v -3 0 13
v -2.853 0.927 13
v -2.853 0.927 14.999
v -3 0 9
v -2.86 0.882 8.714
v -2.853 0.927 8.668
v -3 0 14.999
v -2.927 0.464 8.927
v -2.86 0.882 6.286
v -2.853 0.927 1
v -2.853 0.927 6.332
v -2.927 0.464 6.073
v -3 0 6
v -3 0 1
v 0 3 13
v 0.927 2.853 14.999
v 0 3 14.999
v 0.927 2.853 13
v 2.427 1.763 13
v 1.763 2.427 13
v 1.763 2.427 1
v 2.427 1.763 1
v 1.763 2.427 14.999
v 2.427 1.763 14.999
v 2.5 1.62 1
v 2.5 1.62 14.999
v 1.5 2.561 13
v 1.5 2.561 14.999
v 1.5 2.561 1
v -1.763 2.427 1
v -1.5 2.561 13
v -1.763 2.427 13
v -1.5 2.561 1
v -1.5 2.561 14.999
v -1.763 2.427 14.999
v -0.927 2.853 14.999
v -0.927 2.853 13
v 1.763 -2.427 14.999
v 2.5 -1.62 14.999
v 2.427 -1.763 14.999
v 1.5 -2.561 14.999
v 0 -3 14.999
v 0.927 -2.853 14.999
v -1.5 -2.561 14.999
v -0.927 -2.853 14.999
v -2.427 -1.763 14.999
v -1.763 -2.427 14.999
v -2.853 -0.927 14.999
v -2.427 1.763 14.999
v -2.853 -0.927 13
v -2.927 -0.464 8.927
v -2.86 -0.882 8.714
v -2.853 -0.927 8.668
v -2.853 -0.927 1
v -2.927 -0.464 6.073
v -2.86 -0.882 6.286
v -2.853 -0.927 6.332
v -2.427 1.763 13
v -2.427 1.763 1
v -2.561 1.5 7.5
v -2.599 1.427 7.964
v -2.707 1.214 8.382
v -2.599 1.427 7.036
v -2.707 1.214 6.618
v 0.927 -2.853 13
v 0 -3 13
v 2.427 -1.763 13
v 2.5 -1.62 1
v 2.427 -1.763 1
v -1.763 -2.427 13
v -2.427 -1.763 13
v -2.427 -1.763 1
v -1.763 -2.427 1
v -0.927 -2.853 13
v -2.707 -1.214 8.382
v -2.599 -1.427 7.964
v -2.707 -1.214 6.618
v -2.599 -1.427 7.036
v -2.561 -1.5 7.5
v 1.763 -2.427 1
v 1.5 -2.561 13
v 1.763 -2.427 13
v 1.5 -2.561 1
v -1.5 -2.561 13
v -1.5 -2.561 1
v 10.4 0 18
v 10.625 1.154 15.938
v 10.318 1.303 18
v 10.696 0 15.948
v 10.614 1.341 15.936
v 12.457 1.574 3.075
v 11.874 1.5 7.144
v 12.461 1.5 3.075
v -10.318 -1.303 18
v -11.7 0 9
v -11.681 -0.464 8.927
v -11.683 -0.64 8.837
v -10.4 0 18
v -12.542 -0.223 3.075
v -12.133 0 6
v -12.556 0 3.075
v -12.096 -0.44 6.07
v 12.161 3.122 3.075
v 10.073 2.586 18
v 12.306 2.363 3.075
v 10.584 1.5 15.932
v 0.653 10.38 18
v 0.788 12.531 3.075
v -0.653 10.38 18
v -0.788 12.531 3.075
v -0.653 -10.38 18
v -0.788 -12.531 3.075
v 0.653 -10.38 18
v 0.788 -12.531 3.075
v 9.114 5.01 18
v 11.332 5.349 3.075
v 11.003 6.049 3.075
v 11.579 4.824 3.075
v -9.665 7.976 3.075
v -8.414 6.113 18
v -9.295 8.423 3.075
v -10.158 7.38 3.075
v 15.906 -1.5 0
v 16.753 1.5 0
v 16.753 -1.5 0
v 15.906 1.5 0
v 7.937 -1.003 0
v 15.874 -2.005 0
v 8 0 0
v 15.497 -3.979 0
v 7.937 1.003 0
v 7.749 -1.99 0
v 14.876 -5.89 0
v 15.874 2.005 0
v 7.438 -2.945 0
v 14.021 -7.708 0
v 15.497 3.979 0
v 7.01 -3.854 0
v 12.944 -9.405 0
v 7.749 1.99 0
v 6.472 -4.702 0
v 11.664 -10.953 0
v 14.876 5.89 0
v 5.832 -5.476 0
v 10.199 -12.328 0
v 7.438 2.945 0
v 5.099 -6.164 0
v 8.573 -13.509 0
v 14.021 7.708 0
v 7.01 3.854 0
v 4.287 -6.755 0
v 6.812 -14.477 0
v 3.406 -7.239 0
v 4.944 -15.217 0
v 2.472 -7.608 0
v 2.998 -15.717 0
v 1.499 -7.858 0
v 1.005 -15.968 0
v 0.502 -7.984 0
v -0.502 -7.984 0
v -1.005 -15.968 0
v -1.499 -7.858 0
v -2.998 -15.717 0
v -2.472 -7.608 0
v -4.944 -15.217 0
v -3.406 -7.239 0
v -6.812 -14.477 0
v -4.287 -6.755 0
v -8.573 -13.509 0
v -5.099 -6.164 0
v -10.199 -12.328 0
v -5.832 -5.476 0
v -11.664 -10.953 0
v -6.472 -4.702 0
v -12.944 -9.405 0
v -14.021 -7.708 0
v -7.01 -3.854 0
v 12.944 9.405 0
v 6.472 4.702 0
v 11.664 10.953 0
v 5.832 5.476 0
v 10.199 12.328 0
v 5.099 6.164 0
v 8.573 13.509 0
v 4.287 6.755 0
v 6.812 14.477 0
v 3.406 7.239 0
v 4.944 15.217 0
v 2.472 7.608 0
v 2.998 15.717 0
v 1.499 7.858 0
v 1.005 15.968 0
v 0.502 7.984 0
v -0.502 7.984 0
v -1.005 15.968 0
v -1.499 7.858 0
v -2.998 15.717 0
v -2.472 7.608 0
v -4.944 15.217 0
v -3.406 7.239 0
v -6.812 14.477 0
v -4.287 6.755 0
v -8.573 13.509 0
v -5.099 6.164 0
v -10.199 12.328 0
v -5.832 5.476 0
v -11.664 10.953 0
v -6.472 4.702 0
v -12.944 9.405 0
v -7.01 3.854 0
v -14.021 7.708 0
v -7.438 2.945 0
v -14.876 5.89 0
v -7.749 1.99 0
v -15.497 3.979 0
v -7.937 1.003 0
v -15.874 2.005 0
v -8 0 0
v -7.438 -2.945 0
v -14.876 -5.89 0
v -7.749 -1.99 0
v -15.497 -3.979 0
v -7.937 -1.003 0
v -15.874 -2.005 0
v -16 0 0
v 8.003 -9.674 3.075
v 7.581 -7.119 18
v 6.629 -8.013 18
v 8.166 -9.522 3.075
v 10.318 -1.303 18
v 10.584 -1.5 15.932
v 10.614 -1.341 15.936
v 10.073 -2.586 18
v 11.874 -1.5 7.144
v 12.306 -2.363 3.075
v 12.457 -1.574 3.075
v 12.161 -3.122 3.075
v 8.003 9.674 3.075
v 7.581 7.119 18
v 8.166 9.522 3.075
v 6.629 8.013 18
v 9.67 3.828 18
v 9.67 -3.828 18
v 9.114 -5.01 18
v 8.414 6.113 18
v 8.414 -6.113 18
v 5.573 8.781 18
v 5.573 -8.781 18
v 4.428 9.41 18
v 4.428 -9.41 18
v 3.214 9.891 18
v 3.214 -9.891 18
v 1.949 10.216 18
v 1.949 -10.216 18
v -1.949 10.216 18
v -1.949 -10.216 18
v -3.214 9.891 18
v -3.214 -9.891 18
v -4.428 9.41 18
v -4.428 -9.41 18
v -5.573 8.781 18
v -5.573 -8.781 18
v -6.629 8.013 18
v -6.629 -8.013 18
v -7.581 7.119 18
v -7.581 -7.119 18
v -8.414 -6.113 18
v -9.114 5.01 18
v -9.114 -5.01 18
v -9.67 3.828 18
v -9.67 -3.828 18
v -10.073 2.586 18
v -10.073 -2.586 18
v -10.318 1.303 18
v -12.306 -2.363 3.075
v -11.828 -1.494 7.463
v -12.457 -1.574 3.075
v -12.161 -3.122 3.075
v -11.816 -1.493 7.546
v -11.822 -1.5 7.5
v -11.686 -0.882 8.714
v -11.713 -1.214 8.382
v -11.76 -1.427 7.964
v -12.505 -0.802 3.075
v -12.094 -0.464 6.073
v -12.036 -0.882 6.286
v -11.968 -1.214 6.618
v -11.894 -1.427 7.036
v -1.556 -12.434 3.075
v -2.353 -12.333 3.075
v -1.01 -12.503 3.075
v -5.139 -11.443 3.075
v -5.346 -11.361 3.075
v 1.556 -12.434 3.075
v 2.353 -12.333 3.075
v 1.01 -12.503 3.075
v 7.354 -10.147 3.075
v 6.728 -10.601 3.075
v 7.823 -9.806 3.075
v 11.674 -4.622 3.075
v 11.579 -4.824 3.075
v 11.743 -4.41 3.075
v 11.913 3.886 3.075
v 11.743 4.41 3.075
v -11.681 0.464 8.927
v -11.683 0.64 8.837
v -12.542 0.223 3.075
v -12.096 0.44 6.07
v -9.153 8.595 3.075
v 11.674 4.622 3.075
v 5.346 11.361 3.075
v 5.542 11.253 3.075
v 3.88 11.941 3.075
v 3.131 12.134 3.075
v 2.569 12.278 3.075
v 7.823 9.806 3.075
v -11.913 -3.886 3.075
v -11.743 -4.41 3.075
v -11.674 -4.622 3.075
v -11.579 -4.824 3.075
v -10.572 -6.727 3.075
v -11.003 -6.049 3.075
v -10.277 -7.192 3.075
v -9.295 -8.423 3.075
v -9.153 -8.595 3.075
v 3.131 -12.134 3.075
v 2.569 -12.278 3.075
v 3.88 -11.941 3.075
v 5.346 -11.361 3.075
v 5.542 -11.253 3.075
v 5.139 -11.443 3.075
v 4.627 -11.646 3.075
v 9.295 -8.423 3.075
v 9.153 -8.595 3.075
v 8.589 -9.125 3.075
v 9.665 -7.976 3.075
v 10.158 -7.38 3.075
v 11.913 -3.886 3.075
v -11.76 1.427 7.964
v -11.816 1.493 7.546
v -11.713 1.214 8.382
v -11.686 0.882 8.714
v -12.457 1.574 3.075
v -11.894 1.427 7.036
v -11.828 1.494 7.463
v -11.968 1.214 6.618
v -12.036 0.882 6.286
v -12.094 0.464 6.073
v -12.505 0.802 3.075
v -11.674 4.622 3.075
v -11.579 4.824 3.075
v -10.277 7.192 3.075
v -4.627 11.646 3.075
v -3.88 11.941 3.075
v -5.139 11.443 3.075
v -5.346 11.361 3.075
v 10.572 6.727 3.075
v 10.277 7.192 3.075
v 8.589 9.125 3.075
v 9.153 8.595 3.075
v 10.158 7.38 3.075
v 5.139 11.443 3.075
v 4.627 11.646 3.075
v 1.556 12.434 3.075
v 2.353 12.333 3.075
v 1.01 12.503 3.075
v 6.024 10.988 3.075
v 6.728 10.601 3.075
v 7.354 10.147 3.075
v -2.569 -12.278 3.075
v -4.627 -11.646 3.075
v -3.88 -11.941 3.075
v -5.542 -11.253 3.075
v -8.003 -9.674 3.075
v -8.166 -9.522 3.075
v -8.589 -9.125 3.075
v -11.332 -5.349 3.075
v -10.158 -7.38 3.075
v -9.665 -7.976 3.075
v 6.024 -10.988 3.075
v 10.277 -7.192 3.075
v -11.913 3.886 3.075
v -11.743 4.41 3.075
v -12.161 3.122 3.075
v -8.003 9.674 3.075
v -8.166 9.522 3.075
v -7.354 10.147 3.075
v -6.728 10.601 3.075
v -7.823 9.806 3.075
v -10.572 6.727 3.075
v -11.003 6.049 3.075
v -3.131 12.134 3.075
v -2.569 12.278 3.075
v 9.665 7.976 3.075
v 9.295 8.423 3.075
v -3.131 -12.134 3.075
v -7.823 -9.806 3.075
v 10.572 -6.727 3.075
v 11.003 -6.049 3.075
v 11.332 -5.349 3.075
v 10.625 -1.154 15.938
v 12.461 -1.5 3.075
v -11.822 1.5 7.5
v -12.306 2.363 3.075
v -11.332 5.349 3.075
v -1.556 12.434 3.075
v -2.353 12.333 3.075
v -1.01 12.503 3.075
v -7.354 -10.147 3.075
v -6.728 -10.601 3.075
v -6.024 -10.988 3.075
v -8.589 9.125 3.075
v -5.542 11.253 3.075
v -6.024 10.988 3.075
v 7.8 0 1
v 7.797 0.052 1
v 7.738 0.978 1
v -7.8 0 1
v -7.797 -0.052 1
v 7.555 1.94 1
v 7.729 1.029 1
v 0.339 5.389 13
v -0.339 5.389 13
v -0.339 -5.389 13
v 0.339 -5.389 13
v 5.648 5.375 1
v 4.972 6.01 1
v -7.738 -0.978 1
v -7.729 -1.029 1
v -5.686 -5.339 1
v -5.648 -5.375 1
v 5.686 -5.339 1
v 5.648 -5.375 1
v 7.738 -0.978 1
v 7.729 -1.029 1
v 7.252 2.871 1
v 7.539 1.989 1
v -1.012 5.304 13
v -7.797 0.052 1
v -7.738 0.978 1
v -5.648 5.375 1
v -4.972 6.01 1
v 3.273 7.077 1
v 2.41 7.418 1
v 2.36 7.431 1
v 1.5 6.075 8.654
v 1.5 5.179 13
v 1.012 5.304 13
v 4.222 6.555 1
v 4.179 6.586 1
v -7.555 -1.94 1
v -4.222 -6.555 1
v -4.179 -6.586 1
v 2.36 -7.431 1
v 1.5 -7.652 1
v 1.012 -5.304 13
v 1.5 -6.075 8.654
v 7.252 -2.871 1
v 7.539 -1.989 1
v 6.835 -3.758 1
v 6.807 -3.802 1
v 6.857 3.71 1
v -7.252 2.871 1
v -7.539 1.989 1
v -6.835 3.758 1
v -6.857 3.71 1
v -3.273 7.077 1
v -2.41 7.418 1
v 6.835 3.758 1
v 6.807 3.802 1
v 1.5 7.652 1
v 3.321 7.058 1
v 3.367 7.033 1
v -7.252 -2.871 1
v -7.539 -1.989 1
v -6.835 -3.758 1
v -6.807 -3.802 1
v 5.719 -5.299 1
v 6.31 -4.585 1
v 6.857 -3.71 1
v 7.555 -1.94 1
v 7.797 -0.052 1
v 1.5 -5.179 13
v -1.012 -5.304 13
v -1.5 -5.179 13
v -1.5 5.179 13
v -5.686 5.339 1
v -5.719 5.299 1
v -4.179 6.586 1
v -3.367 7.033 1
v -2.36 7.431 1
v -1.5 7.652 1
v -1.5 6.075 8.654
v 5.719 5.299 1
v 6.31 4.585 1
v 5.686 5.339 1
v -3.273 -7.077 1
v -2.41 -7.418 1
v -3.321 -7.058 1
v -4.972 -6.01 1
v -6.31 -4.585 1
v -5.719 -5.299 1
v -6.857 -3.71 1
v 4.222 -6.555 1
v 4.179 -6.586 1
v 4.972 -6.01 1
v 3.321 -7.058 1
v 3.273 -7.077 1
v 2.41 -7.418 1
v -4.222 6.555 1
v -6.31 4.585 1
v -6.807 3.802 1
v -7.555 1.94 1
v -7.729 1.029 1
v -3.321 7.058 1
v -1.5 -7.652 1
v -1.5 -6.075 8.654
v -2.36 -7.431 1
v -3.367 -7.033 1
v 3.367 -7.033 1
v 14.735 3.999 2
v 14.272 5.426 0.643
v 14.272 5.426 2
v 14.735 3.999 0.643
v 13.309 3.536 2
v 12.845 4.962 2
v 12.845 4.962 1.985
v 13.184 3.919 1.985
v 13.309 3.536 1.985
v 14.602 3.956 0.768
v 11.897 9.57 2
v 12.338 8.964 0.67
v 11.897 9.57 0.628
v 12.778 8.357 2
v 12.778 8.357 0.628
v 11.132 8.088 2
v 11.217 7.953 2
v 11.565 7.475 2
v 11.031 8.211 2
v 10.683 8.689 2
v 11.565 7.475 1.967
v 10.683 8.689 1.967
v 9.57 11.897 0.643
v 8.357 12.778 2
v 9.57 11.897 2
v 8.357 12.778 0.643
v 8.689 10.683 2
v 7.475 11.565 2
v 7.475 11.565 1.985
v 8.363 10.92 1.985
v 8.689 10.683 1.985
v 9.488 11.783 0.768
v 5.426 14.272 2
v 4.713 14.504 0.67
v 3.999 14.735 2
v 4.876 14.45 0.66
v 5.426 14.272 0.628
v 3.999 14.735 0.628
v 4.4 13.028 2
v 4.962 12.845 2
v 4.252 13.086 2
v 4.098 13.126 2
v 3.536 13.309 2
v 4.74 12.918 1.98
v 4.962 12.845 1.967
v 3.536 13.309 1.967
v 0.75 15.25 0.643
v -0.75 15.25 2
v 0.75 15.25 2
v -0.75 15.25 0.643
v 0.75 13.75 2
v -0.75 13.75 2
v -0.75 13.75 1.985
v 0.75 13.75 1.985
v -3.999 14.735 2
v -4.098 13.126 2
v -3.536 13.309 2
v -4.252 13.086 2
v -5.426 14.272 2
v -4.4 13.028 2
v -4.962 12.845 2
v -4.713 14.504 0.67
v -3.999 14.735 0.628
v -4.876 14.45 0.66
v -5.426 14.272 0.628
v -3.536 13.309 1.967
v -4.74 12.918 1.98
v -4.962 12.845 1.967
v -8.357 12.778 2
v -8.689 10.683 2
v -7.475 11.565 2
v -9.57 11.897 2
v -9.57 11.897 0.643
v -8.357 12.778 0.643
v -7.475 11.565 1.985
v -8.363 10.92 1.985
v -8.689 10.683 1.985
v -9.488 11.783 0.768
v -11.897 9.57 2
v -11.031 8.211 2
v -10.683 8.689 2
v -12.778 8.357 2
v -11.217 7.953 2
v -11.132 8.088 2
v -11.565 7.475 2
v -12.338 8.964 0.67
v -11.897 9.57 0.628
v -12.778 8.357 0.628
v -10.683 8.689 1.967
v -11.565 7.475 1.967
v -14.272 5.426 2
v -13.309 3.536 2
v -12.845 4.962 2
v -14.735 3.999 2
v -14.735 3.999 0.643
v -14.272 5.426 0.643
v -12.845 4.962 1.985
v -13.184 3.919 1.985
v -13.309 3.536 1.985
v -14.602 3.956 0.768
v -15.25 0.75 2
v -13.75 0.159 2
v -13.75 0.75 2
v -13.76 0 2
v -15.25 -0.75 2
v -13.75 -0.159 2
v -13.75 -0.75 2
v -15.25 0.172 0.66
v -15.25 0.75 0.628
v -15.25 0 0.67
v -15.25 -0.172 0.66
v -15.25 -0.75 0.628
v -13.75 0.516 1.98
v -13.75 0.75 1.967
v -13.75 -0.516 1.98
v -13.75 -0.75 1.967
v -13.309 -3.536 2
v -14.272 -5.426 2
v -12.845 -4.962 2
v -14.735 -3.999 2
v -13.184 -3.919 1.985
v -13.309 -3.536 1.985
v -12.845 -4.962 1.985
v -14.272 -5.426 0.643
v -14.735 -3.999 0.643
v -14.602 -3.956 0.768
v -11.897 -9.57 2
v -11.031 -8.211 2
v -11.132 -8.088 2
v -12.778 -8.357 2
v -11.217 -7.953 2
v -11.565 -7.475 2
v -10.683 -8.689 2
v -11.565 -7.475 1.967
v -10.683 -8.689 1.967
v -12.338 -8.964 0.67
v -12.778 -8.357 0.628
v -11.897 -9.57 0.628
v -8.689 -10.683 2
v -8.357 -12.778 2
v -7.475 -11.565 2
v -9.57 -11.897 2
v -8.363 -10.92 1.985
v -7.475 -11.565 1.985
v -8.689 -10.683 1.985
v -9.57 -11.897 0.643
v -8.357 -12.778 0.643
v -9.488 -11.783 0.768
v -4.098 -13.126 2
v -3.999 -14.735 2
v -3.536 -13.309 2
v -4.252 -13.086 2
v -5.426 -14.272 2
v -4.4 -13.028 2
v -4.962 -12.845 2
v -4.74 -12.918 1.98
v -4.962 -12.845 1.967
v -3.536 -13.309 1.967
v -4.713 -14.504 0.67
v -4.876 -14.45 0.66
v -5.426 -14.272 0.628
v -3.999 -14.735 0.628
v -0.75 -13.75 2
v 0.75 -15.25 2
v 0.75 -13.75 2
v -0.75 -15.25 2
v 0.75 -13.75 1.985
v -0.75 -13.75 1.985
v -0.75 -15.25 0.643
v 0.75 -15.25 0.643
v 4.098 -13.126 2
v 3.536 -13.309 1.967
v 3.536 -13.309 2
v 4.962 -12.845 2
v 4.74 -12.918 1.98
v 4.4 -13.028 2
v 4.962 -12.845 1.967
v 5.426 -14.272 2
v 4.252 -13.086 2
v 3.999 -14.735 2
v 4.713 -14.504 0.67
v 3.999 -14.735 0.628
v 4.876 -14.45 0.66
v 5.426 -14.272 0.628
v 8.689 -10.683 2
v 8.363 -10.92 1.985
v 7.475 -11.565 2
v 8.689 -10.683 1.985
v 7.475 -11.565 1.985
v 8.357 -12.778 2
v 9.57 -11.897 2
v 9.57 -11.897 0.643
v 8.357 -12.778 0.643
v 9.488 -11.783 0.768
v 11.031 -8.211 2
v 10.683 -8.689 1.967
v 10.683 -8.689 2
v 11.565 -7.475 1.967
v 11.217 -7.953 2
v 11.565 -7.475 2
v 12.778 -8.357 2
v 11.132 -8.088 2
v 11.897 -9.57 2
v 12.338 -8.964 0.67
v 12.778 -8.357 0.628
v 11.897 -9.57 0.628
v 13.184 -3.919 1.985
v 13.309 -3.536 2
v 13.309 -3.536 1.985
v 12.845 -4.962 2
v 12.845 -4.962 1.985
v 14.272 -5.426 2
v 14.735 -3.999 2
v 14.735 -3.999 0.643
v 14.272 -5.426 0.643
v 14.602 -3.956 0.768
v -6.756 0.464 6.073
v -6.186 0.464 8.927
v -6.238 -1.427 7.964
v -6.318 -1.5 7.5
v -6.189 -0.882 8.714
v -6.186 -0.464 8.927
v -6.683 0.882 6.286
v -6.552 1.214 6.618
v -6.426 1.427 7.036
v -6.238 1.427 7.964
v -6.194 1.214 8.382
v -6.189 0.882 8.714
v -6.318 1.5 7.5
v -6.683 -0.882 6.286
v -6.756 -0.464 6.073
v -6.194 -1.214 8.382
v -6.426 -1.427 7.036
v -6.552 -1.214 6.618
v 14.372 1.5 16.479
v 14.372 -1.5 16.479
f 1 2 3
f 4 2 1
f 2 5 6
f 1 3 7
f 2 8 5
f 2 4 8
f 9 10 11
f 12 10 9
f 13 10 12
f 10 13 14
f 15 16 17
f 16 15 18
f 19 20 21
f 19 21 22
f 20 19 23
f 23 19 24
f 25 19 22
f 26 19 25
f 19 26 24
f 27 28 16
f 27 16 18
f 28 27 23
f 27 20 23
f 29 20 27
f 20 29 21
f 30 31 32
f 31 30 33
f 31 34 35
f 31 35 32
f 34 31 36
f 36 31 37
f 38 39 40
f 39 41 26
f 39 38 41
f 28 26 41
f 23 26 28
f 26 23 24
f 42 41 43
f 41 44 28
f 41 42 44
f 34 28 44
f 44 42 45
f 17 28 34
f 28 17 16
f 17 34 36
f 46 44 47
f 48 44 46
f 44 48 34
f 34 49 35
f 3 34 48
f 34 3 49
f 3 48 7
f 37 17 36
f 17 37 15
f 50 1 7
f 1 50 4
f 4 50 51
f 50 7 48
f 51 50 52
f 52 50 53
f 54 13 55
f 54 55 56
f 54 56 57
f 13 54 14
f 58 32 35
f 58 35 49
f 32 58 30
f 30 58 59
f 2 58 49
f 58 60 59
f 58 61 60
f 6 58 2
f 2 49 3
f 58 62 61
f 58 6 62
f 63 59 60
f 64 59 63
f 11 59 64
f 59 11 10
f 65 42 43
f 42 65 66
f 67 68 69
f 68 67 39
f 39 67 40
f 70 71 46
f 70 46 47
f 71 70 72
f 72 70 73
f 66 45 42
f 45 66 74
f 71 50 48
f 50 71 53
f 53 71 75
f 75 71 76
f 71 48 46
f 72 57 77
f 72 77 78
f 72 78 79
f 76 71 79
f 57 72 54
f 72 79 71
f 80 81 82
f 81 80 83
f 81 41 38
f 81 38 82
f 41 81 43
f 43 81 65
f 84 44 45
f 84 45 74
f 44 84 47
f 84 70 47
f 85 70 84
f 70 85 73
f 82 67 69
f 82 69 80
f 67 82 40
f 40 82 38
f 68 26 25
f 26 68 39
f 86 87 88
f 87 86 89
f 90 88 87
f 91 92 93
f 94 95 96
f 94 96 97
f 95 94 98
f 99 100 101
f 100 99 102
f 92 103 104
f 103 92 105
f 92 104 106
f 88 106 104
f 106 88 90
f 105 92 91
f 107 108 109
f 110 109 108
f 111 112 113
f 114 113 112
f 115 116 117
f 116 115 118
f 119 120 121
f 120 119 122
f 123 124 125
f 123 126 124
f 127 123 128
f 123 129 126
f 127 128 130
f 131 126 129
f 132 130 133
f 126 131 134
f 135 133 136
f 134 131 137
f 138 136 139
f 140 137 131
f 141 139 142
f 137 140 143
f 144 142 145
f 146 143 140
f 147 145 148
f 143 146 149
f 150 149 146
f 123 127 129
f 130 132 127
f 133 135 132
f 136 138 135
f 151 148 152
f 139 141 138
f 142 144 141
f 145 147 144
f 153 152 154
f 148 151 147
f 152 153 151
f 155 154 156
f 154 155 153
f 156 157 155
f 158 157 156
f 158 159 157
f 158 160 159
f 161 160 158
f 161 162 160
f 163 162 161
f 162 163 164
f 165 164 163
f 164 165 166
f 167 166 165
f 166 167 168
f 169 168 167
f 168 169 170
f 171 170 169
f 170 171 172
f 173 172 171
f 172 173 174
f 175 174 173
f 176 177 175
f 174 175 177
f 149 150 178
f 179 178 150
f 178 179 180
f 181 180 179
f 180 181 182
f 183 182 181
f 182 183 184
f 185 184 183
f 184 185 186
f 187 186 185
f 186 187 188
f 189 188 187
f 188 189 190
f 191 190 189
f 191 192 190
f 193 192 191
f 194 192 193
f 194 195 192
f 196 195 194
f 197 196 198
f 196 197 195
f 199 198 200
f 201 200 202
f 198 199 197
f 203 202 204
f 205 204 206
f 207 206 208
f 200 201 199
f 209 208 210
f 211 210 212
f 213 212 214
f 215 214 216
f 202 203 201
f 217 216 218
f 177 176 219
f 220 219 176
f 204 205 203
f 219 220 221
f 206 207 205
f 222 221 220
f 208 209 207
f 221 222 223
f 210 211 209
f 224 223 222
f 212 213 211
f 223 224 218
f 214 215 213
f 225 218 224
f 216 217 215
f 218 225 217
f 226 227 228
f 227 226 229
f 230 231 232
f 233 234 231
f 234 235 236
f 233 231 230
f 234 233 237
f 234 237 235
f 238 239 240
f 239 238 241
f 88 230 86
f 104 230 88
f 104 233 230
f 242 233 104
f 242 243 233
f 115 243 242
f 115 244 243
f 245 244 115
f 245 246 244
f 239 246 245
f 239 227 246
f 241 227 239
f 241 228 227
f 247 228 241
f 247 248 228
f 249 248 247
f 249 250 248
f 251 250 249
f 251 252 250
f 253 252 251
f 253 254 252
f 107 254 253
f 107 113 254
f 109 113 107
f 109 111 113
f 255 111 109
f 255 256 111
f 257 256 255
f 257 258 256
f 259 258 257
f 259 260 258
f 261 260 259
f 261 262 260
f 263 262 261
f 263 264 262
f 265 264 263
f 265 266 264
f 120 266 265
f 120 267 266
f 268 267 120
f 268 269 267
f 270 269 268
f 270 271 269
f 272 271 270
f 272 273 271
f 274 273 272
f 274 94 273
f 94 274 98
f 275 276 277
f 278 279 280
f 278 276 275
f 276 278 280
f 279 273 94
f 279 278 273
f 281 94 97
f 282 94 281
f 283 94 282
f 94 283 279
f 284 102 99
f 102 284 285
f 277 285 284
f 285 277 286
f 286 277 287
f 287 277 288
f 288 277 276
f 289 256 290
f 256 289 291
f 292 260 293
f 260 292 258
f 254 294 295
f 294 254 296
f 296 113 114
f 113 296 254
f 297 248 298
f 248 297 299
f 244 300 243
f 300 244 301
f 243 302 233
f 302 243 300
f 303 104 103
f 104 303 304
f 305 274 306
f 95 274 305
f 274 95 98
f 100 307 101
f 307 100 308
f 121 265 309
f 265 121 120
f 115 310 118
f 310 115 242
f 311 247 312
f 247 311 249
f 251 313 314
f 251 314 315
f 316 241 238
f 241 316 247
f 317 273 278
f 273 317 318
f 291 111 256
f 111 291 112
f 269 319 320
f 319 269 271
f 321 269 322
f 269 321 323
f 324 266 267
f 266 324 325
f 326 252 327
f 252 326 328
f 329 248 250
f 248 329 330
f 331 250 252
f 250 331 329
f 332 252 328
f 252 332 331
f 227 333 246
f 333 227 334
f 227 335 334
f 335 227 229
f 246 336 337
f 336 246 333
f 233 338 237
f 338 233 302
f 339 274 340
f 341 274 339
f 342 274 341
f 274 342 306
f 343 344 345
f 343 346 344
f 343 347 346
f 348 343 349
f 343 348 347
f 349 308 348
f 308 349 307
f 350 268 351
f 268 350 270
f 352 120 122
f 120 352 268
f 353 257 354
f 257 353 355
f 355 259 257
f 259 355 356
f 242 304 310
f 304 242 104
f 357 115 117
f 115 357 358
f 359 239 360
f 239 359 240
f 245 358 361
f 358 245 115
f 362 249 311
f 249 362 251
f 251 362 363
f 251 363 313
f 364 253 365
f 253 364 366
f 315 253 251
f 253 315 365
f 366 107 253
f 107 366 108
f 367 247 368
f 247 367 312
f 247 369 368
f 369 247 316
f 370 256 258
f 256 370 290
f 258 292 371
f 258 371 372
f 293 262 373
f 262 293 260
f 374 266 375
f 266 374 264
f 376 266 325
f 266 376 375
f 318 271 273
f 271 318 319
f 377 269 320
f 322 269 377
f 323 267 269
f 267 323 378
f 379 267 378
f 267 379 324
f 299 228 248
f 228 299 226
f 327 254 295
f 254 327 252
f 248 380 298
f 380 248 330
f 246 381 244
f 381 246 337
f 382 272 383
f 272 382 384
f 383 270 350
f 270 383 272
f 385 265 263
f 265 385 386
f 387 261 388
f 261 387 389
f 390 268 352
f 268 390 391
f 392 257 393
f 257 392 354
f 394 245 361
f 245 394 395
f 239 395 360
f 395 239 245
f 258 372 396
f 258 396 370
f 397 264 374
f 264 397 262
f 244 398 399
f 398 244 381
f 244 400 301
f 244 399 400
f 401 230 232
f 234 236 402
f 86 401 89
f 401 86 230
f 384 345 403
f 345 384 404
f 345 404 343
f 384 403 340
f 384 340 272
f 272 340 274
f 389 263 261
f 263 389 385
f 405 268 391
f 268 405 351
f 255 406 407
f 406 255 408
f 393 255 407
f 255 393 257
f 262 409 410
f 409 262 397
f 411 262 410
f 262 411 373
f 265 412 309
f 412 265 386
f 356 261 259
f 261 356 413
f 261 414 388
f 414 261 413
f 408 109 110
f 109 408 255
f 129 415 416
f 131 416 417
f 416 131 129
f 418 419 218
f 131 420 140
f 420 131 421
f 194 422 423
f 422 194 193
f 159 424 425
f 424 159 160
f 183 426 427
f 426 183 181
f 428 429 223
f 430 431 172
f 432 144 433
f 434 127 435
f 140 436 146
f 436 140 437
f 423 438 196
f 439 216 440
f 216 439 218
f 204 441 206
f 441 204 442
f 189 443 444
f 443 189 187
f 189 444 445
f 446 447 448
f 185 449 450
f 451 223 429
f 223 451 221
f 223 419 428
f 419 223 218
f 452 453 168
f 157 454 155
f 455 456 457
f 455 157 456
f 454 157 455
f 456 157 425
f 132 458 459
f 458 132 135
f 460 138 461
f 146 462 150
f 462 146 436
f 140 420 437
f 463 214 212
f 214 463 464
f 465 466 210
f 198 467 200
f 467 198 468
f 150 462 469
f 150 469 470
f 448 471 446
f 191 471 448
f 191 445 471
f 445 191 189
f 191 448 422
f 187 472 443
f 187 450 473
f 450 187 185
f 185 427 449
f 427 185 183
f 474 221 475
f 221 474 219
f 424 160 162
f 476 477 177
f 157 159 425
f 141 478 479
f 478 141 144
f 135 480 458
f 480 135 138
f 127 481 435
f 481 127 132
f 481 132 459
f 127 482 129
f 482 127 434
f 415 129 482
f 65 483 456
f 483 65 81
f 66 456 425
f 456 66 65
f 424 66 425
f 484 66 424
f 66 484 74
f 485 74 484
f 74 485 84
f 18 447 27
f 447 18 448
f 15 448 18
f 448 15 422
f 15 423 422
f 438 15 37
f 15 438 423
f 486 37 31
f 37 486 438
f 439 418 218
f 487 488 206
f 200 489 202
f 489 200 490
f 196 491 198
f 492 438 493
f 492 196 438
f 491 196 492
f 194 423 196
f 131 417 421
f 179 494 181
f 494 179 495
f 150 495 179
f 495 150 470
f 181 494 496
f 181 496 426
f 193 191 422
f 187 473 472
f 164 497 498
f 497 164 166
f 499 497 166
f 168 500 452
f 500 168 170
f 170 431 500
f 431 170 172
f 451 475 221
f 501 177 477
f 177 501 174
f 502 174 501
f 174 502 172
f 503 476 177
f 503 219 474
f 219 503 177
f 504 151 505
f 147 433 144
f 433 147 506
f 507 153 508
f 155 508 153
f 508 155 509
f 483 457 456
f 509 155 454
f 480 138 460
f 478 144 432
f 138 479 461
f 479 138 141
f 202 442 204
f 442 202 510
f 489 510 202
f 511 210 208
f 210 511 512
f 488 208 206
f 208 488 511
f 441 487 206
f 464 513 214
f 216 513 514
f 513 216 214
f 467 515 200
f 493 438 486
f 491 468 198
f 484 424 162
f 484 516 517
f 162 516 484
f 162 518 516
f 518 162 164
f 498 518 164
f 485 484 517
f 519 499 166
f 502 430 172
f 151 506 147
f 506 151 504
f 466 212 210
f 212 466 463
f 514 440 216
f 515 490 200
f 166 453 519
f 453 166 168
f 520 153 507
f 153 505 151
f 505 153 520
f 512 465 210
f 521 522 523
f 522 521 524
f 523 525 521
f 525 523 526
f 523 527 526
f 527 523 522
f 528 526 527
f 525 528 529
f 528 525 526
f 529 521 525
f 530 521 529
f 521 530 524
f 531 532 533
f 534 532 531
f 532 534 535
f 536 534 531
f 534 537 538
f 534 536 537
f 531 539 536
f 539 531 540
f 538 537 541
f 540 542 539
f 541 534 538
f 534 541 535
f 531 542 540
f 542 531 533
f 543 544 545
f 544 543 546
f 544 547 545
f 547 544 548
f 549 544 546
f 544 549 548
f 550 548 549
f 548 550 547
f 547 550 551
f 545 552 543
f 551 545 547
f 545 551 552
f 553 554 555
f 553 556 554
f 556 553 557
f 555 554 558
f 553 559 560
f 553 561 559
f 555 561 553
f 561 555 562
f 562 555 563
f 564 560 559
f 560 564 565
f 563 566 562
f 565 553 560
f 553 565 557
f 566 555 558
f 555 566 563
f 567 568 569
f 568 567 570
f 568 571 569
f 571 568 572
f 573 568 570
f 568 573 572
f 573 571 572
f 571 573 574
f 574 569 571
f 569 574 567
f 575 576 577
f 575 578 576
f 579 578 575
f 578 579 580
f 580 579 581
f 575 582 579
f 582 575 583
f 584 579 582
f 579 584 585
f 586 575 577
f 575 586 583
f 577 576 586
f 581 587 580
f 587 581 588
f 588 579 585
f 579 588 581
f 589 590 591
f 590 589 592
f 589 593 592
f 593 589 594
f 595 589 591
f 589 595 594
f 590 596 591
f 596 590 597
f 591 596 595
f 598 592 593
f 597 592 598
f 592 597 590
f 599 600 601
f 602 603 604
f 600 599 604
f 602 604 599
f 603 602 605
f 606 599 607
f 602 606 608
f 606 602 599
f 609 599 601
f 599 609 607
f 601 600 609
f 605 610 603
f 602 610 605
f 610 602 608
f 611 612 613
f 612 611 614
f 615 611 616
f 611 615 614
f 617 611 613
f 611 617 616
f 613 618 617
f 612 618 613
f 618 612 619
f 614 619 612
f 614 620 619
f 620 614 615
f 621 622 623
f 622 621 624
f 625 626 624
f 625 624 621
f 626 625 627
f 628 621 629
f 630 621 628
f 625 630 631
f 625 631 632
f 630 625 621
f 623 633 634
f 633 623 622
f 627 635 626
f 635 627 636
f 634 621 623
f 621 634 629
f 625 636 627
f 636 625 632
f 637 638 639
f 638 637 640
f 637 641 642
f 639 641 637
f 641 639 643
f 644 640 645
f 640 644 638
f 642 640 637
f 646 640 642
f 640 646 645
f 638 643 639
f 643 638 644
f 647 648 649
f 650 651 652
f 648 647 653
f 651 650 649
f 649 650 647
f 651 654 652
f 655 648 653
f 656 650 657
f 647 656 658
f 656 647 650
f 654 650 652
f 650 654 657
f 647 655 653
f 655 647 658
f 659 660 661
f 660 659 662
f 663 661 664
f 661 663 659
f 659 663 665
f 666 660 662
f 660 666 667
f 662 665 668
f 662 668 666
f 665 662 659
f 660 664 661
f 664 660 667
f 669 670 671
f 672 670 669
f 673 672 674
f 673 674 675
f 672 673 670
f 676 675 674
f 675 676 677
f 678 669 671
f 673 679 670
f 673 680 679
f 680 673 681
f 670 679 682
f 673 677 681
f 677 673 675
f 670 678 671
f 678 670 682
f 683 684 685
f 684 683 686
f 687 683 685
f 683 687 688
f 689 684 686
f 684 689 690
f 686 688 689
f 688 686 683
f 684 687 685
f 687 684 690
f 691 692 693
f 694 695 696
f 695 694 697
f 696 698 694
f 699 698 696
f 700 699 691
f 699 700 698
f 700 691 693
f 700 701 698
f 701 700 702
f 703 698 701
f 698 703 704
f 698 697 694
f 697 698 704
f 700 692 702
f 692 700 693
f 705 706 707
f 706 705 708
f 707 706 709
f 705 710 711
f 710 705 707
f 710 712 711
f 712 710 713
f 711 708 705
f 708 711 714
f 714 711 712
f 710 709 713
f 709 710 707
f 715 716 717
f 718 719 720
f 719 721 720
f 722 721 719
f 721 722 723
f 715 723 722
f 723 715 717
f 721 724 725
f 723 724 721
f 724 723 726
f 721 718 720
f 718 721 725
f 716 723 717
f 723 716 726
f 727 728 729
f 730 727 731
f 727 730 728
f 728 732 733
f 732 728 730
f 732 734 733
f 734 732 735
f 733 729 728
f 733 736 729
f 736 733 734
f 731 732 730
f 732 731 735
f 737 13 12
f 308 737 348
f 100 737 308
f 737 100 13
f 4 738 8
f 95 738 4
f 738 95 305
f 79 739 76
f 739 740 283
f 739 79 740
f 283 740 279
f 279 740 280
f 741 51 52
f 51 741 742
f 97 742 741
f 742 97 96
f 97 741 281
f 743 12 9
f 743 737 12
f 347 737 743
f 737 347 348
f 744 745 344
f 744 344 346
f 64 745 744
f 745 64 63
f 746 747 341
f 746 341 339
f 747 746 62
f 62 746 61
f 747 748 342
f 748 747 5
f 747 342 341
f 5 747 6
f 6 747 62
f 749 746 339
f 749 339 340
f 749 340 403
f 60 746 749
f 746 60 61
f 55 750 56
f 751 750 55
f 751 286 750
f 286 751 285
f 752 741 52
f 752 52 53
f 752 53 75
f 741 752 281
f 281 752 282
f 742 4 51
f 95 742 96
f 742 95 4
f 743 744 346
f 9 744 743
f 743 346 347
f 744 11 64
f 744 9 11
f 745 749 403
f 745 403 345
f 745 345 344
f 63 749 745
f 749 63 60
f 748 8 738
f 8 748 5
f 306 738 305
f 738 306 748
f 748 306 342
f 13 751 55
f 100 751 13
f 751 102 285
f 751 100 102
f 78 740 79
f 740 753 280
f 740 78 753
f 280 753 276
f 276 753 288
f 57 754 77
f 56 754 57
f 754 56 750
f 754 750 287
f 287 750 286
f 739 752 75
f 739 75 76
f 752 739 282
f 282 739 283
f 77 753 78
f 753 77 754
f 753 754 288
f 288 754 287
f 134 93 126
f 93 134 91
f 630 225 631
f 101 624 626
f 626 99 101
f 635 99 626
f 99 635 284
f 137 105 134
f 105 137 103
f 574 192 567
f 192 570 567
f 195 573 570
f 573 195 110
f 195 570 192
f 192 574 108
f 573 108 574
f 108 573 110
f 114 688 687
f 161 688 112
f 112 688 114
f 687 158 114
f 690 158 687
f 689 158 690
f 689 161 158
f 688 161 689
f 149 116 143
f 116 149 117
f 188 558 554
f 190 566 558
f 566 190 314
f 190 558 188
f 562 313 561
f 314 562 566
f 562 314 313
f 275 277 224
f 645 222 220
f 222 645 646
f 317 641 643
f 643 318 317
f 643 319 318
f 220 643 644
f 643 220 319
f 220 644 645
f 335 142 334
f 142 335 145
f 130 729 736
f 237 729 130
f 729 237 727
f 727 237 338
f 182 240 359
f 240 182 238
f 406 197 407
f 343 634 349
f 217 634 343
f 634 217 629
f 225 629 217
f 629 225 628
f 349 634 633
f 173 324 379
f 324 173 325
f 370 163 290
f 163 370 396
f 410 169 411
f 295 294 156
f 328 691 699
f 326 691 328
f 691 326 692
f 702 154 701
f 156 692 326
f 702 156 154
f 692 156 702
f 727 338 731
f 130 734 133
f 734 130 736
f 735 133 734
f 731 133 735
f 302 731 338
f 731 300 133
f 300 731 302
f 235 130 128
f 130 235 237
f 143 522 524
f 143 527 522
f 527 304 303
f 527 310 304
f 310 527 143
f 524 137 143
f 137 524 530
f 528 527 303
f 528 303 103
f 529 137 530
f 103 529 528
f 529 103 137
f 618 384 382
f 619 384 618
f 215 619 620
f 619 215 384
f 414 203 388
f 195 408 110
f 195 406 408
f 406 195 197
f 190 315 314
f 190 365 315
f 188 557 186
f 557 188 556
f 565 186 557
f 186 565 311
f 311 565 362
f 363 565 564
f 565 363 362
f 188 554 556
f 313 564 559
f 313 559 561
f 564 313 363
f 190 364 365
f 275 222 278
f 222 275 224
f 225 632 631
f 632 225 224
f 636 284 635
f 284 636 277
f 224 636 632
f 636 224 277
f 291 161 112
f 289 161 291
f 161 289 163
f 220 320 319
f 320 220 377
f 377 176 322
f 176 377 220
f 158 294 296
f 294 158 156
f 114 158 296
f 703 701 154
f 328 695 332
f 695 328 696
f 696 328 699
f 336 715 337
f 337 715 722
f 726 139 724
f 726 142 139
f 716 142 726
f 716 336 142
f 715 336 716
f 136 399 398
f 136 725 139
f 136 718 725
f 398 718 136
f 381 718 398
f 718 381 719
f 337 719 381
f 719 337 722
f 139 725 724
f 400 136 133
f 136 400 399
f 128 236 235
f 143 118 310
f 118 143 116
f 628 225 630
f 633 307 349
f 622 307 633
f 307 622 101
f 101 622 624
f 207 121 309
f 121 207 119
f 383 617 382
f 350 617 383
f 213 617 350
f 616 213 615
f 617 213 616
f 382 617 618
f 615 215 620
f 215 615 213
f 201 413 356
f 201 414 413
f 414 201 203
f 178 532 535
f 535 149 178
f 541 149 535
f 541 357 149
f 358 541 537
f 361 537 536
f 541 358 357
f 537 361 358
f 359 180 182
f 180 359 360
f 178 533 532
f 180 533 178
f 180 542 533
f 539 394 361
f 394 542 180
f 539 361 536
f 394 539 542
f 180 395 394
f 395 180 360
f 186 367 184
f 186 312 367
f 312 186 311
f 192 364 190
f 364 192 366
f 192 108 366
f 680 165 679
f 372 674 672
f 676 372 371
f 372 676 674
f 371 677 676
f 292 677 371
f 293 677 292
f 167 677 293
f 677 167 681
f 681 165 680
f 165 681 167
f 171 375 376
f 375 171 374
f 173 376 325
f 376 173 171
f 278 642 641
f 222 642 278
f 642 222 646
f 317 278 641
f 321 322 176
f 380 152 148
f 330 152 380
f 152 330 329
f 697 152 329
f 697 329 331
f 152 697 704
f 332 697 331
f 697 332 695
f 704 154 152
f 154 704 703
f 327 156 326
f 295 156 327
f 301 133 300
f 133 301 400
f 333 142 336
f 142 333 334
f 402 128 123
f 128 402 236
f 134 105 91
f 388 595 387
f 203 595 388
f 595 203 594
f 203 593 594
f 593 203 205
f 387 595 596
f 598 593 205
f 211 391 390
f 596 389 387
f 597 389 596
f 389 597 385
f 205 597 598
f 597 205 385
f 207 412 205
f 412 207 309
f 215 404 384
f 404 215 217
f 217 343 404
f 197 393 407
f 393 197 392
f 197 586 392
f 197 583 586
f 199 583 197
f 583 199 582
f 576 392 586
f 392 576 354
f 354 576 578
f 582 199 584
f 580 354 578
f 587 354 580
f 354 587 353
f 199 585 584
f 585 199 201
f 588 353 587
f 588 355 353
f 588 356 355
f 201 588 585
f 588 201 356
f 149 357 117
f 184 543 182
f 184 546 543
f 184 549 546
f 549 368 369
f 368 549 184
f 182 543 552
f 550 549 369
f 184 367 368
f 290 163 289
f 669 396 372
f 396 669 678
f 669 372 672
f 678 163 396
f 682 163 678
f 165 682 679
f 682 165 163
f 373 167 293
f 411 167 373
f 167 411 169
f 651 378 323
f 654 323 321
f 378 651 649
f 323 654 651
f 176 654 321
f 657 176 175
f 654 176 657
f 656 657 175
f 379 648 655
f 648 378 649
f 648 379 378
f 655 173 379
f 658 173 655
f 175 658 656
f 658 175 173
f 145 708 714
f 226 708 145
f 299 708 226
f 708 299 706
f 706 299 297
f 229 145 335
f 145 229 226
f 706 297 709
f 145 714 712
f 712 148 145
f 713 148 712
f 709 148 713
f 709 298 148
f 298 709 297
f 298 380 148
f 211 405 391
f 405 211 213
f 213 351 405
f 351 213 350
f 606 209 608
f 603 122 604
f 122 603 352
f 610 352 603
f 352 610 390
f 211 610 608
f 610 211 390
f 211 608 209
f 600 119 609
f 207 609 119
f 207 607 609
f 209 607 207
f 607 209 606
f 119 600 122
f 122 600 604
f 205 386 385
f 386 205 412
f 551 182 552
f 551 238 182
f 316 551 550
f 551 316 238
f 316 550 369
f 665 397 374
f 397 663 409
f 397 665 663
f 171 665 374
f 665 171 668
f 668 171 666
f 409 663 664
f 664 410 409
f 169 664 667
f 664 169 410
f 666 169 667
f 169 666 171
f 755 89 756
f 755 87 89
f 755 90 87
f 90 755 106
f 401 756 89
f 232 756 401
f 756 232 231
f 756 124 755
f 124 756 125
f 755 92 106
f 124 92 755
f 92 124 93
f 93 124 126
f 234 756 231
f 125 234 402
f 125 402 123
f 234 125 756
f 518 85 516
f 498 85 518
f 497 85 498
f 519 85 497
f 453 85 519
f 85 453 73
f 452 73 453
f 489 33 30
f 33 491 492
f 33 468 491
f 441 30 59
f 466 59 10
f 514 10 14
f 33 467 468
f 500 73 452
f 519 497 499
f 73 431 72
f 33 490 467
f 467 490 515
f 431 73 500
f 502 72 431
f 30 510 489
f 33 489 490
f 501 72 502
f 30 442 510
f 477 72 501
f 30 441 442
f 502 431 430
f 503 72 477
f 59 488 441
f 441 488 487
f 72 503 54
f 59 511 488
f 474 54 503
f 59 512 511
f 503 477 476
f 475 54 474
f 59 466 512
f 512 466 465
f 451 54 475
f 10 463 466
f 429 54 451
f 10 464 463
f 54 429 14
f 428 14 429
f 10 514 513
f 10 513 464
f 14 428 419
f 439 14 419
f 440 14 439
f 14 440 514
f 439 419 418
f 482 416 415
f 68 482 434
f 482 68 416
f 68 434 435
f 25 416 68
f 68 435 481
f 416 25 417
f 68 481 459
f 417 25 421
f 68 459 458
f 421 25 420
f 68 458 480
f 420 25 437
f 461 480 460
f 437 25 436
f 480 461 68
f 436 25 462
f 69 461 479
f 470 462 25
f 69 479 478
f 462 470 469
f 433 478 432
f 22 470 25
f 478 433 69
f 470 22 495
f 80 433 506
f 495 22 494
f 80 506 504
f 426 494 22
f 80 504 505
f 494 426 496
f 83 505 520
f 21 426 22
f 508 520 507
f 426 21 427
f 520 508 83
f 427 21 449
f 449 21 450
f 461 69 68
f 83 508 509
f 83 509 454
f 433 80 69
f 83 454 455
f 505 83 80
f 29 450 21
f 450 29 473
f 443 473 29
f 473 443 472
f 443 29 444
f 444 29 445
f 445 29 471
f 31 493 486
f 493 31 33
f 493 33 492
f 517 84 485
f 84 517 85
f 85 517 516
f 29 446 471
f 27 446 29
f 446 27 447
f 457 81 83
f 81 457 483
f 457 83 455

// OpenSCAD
//////////////////////////
// Customizable settings
//////////////////////////


// Diameter of the hole on the bottom (in mm).
HoleDiameter = 6;

// Depth of the hole in the bottom (in mm).  If you want the hole to go all the way through then set this to a number larger than the total height of the object.
HoleDepth = 15;

// If you want a D-shaped hole, set this to the thickness of the flat side (in mm).  Larger values for the flat make the hole smaller.
HoleFlatThickness = 11.5;

// Height (in mm).  If dome cap is selected, it is not included in height.  The shaft length is also not counted.
KnobHeight = 18;

// Diameter of base of round part of knob (in mm).  (Knurled ridges are not included in this measurement.)
KnobDiameter = 26;

// Shape of top of knob.  "Recessed" type can be painted.
CapType = 0;	// [0:Flat, 1:Recessed, 2:Dome]

// Do you want a large timer-knob style pointer?
TimerKnob=0;	// [0:No, 1:Yes]

// Would you like a divot on the top to indicate direction?
Pointer1 = 0;	// [0:No, 1:Yes]

// Would you like a line (pointer) on the front to indicate direction?
Pointer2 = 1;	// [0:No, 1:Yes]

// Do you want finger ridges around the knob?
Knurled = 0;	// [0:No, 1:Yes]

// 0 = A cylindrical knob, any other value will taper the knob.
TaperPercentage = 20;		// [0:0%, 10:10%, 20:20%, 30:30%, 40:40%, 50:50%]

// Width of "dial" ring (in mm).  Set to zero if you don't want the ring.
RingWidth = 3;

// The number of markings on the dial.  Set to zero if you don't want markings.  (RingWidth must be non-zero.)
RingMarkings = 20;

// diameter of the hole for the setscrew (in mm).  If you don't need a hole, set this to zero.
ScrewHoleDiameter = 3;

// Length of the shaft on the bottom of the knob (in mm).  If you don't want a shaft, set this value to zero.
ShaftLength = 14;

// Diameter of the shaft on the bottom of the knob (in mm).  (ShaftLength must be non-zero.)
ShaftDiameter = 20;

// Would you like a notch in the shaft?  It can be used for a press-on type knob (rather than using a setscrew).  (ShaftLength must be non-zero.)
NotchedShaft = 1;	// [0:No, 1:Yes]



//////////////////////////
//Advanced settings
//////////////////////////

RingThickness = 5*1;
DivotDepth = 1.5*1;
MarkingWidth = 1.5*1;
DistanceBetweenKnurls = 3*1;
TimerKnobConst = 1.8*1;



//////////////////////////
//Calculations
//////////////////////////

PI=3.14159265*1;
KnobMajorRadius = KnobDiameter/2;
KnobMinorRadius = KnobDiameter/2 * (1 - TaperPercentage/100);
KnobRadius = KnobMinorRadius + (KnobMajorRadius-KnobMinorRadius)/2;
KnobCircumference = PI*KnobDiameter;
Knurls = round(KnobCircumference/DistanceBetweenKnurls);
Divot=CapType;

TaperAngle=asin(KnobHeight / (sqrt(pow(KnobHeight, 2) +
		pow(KnobMajorRadius-KnobMinorRadius,2)))) - 90;

DivotRadius = KnobMinorRadius*.4;


//translate([0, 0, (ShaftLength==0)? 0 : ShaftLength-0.001])
difference()
{
union()
{
	// Primary knob cylinder
    difference() {
	cylinder(h=KnobHeight, r1=KnobMajorRadius, r2=KnobMinorRadius,
			$fn=50);
    cylinder(h=KnobHeight - 5, r1=KnobMajorRadius - 5, r2=KnobMinorRadius - 5,
			$fn=50);
    }
	
	if (Knurled)
		for (i=[0 : Knurls-1])
			rotate([0, 0, i * (360/Knurls)])
				translate([KnobRadius, 0, KnobHeight/2])
					rotate([0, TaperAngle, 0]) rotate([0, 0, 45])
						cube([2, 2, KnobHeight+.001], center=true);

 	if (RingMarkings>0)
		for (i=[0 : RingMarkings-1])
			rotate([0, 0, i * (360/RingMarkings)])
				translate([KnobMajorRadius + RingWidth/2, 0, 1])
					cube([RingWidth*.5, MarkingWidth, 2], center=true);		
	
	if (Pointer2==1)
		translate([KnobRadius, 0, KnobHeight/2-2])
			rotate([0, TaperAngle, 0])
				cube([8, 3, KnobHeight], center=true);		

	if (RingWidth>0)
    {
        difference(){
		translate([0, 0, RingThickness/2])
			cylinder(r1=KnobMajorRadius + RingWidth, r2=KnobMinorRadius,
					h=RingThickness, $fn=50, center=true);
        translate([0, 0, RingThickness/2])
			cylinder(r1=KnobMajorRadius + RingWidth - 4, r2=KnobMinorRadius - 2,
					h=RingThickness, $fn=50, center=true);
        }
    }

	if (Divot==2)
		translate([0, 0, KnobHeight])
			difference()
			{
				scale([1, 1, 0.5])
					sphere(r=KnobMinorRadius, $fn=50, center=true);

				translate([0, 0, 0-(KnobMinorRadius+.001)])
					cube([KnobMinorRadius*2.5, KnobMinorRadius*2.5,
							KnobMinorRadius*2], center=true);
			}

	if (TimerKnob==1) intersection()
		{
			translate([0, 0, 0-(KnobDiameter*TimerKnobConst) + KnobHeight])
			sphere(r=KnobDiameter*TimerKnobConst, $fn=50, center=true);		
	
			translate([0-(KnobDiameter*TimerKnobConst)*0.1, 0,
					KnobHeight/2])
				scale([1, 0.5, 1])
					cylinder(h=KnobHeight, r=(KnobDiameter*TimerKnobConst) *
							0.8, $fn=3, center=true);
		}
}


// Pointer1: Offset hemispherical divot
if (Pointer1==1)
	translate([KnobMinorRadius*.55, 0, KnobHeight + DivotRadius*.6])
		sphere(r=DivotRadius, $fn=40);

// Divot1: Centered cylynrical divot
if (Divot==1)
	translate([0, 0, KnobHeight])
		cylinder(h=DivotDepth*2, r=KnobMinorRadius-1.5, $fn=50,
				center=true);

if (ShaftLength>0)
{
	// Hole for shaft
	translate([0, 0, HoleDepth/2 - 0.001])
		difference()
		{
			cylinder(r=HoleDiameter/2, h=HoleDepth, $fn=20,
					center=true);
	
			// Flat for D-shaped hole
			translate([(0-HoleDiameter)+HoleFlatThickness, 0, 0])
				cube([HoleDiameter, HoleDiameter, HoleDepth+.001],
						center=true);
		}
	
	// Hole for setscrew
	if (ScrewHoleDiameter>0)
		translate([0 - (KnobMajorRadius+RingWidth+1)/2, 0,
				HoleDepth/2])
			rotate([0, 90, 0])
			cylinder(h=(KnobMajorRadius+RingWidth+1),
					r=ScrewHoleDiameter/2, $fn=20, center=true);
}

// Make sure bottom ends at z=0
translate([0, 0, -10])
	cube([(KnobMajorRadius+RingWidth) * 3,
			(KnobMajorRadius+RingWidth) * 3, 20], center=true);
}

if (ShaftLength>0)
	difference()
	{
		translate([0, 0, ShaftLength-6])
			cylinder(h=ShaftLength, r=ShaftDiameter/2, $fn=20,
					center=true);

		if (NotchedShaft==1)
		{
            translate([0, 0, ShaftLength -6])
			cube([HoleDiameter/2, ShaftDiameter*2, ShaftLength],
					center=true);
		}

		// Hole for shaft
		translate([0, 0, HoleDepth/2 - 0.001])
			difference()
			{
				cylinder(r=HoleDiameter/2, h=HoleDepth, $fn=20,
						center=true);
		
				// Flat for D-shaped hole
				translate([(0-HoleDiameter)+HoleFlatThickness, 0, 0])
					cube([HoleDiameter, HoleDiameter, HoleDepth+.001],
							center=true);
			}
		
		// Hole for setscrew
		if (ScrewHoleDiameter>0)
			translate([0 - (KnobMajorRadius+RingWidth+1)/2, 0,
					HoleDepth/2])
				rotate([0, 90, 0])
				cylinder(h=(KnobMajorRadius+RingWidth+1),
						r=ScrewHoleDiameter/2, $fn=20, center=true);
	}
